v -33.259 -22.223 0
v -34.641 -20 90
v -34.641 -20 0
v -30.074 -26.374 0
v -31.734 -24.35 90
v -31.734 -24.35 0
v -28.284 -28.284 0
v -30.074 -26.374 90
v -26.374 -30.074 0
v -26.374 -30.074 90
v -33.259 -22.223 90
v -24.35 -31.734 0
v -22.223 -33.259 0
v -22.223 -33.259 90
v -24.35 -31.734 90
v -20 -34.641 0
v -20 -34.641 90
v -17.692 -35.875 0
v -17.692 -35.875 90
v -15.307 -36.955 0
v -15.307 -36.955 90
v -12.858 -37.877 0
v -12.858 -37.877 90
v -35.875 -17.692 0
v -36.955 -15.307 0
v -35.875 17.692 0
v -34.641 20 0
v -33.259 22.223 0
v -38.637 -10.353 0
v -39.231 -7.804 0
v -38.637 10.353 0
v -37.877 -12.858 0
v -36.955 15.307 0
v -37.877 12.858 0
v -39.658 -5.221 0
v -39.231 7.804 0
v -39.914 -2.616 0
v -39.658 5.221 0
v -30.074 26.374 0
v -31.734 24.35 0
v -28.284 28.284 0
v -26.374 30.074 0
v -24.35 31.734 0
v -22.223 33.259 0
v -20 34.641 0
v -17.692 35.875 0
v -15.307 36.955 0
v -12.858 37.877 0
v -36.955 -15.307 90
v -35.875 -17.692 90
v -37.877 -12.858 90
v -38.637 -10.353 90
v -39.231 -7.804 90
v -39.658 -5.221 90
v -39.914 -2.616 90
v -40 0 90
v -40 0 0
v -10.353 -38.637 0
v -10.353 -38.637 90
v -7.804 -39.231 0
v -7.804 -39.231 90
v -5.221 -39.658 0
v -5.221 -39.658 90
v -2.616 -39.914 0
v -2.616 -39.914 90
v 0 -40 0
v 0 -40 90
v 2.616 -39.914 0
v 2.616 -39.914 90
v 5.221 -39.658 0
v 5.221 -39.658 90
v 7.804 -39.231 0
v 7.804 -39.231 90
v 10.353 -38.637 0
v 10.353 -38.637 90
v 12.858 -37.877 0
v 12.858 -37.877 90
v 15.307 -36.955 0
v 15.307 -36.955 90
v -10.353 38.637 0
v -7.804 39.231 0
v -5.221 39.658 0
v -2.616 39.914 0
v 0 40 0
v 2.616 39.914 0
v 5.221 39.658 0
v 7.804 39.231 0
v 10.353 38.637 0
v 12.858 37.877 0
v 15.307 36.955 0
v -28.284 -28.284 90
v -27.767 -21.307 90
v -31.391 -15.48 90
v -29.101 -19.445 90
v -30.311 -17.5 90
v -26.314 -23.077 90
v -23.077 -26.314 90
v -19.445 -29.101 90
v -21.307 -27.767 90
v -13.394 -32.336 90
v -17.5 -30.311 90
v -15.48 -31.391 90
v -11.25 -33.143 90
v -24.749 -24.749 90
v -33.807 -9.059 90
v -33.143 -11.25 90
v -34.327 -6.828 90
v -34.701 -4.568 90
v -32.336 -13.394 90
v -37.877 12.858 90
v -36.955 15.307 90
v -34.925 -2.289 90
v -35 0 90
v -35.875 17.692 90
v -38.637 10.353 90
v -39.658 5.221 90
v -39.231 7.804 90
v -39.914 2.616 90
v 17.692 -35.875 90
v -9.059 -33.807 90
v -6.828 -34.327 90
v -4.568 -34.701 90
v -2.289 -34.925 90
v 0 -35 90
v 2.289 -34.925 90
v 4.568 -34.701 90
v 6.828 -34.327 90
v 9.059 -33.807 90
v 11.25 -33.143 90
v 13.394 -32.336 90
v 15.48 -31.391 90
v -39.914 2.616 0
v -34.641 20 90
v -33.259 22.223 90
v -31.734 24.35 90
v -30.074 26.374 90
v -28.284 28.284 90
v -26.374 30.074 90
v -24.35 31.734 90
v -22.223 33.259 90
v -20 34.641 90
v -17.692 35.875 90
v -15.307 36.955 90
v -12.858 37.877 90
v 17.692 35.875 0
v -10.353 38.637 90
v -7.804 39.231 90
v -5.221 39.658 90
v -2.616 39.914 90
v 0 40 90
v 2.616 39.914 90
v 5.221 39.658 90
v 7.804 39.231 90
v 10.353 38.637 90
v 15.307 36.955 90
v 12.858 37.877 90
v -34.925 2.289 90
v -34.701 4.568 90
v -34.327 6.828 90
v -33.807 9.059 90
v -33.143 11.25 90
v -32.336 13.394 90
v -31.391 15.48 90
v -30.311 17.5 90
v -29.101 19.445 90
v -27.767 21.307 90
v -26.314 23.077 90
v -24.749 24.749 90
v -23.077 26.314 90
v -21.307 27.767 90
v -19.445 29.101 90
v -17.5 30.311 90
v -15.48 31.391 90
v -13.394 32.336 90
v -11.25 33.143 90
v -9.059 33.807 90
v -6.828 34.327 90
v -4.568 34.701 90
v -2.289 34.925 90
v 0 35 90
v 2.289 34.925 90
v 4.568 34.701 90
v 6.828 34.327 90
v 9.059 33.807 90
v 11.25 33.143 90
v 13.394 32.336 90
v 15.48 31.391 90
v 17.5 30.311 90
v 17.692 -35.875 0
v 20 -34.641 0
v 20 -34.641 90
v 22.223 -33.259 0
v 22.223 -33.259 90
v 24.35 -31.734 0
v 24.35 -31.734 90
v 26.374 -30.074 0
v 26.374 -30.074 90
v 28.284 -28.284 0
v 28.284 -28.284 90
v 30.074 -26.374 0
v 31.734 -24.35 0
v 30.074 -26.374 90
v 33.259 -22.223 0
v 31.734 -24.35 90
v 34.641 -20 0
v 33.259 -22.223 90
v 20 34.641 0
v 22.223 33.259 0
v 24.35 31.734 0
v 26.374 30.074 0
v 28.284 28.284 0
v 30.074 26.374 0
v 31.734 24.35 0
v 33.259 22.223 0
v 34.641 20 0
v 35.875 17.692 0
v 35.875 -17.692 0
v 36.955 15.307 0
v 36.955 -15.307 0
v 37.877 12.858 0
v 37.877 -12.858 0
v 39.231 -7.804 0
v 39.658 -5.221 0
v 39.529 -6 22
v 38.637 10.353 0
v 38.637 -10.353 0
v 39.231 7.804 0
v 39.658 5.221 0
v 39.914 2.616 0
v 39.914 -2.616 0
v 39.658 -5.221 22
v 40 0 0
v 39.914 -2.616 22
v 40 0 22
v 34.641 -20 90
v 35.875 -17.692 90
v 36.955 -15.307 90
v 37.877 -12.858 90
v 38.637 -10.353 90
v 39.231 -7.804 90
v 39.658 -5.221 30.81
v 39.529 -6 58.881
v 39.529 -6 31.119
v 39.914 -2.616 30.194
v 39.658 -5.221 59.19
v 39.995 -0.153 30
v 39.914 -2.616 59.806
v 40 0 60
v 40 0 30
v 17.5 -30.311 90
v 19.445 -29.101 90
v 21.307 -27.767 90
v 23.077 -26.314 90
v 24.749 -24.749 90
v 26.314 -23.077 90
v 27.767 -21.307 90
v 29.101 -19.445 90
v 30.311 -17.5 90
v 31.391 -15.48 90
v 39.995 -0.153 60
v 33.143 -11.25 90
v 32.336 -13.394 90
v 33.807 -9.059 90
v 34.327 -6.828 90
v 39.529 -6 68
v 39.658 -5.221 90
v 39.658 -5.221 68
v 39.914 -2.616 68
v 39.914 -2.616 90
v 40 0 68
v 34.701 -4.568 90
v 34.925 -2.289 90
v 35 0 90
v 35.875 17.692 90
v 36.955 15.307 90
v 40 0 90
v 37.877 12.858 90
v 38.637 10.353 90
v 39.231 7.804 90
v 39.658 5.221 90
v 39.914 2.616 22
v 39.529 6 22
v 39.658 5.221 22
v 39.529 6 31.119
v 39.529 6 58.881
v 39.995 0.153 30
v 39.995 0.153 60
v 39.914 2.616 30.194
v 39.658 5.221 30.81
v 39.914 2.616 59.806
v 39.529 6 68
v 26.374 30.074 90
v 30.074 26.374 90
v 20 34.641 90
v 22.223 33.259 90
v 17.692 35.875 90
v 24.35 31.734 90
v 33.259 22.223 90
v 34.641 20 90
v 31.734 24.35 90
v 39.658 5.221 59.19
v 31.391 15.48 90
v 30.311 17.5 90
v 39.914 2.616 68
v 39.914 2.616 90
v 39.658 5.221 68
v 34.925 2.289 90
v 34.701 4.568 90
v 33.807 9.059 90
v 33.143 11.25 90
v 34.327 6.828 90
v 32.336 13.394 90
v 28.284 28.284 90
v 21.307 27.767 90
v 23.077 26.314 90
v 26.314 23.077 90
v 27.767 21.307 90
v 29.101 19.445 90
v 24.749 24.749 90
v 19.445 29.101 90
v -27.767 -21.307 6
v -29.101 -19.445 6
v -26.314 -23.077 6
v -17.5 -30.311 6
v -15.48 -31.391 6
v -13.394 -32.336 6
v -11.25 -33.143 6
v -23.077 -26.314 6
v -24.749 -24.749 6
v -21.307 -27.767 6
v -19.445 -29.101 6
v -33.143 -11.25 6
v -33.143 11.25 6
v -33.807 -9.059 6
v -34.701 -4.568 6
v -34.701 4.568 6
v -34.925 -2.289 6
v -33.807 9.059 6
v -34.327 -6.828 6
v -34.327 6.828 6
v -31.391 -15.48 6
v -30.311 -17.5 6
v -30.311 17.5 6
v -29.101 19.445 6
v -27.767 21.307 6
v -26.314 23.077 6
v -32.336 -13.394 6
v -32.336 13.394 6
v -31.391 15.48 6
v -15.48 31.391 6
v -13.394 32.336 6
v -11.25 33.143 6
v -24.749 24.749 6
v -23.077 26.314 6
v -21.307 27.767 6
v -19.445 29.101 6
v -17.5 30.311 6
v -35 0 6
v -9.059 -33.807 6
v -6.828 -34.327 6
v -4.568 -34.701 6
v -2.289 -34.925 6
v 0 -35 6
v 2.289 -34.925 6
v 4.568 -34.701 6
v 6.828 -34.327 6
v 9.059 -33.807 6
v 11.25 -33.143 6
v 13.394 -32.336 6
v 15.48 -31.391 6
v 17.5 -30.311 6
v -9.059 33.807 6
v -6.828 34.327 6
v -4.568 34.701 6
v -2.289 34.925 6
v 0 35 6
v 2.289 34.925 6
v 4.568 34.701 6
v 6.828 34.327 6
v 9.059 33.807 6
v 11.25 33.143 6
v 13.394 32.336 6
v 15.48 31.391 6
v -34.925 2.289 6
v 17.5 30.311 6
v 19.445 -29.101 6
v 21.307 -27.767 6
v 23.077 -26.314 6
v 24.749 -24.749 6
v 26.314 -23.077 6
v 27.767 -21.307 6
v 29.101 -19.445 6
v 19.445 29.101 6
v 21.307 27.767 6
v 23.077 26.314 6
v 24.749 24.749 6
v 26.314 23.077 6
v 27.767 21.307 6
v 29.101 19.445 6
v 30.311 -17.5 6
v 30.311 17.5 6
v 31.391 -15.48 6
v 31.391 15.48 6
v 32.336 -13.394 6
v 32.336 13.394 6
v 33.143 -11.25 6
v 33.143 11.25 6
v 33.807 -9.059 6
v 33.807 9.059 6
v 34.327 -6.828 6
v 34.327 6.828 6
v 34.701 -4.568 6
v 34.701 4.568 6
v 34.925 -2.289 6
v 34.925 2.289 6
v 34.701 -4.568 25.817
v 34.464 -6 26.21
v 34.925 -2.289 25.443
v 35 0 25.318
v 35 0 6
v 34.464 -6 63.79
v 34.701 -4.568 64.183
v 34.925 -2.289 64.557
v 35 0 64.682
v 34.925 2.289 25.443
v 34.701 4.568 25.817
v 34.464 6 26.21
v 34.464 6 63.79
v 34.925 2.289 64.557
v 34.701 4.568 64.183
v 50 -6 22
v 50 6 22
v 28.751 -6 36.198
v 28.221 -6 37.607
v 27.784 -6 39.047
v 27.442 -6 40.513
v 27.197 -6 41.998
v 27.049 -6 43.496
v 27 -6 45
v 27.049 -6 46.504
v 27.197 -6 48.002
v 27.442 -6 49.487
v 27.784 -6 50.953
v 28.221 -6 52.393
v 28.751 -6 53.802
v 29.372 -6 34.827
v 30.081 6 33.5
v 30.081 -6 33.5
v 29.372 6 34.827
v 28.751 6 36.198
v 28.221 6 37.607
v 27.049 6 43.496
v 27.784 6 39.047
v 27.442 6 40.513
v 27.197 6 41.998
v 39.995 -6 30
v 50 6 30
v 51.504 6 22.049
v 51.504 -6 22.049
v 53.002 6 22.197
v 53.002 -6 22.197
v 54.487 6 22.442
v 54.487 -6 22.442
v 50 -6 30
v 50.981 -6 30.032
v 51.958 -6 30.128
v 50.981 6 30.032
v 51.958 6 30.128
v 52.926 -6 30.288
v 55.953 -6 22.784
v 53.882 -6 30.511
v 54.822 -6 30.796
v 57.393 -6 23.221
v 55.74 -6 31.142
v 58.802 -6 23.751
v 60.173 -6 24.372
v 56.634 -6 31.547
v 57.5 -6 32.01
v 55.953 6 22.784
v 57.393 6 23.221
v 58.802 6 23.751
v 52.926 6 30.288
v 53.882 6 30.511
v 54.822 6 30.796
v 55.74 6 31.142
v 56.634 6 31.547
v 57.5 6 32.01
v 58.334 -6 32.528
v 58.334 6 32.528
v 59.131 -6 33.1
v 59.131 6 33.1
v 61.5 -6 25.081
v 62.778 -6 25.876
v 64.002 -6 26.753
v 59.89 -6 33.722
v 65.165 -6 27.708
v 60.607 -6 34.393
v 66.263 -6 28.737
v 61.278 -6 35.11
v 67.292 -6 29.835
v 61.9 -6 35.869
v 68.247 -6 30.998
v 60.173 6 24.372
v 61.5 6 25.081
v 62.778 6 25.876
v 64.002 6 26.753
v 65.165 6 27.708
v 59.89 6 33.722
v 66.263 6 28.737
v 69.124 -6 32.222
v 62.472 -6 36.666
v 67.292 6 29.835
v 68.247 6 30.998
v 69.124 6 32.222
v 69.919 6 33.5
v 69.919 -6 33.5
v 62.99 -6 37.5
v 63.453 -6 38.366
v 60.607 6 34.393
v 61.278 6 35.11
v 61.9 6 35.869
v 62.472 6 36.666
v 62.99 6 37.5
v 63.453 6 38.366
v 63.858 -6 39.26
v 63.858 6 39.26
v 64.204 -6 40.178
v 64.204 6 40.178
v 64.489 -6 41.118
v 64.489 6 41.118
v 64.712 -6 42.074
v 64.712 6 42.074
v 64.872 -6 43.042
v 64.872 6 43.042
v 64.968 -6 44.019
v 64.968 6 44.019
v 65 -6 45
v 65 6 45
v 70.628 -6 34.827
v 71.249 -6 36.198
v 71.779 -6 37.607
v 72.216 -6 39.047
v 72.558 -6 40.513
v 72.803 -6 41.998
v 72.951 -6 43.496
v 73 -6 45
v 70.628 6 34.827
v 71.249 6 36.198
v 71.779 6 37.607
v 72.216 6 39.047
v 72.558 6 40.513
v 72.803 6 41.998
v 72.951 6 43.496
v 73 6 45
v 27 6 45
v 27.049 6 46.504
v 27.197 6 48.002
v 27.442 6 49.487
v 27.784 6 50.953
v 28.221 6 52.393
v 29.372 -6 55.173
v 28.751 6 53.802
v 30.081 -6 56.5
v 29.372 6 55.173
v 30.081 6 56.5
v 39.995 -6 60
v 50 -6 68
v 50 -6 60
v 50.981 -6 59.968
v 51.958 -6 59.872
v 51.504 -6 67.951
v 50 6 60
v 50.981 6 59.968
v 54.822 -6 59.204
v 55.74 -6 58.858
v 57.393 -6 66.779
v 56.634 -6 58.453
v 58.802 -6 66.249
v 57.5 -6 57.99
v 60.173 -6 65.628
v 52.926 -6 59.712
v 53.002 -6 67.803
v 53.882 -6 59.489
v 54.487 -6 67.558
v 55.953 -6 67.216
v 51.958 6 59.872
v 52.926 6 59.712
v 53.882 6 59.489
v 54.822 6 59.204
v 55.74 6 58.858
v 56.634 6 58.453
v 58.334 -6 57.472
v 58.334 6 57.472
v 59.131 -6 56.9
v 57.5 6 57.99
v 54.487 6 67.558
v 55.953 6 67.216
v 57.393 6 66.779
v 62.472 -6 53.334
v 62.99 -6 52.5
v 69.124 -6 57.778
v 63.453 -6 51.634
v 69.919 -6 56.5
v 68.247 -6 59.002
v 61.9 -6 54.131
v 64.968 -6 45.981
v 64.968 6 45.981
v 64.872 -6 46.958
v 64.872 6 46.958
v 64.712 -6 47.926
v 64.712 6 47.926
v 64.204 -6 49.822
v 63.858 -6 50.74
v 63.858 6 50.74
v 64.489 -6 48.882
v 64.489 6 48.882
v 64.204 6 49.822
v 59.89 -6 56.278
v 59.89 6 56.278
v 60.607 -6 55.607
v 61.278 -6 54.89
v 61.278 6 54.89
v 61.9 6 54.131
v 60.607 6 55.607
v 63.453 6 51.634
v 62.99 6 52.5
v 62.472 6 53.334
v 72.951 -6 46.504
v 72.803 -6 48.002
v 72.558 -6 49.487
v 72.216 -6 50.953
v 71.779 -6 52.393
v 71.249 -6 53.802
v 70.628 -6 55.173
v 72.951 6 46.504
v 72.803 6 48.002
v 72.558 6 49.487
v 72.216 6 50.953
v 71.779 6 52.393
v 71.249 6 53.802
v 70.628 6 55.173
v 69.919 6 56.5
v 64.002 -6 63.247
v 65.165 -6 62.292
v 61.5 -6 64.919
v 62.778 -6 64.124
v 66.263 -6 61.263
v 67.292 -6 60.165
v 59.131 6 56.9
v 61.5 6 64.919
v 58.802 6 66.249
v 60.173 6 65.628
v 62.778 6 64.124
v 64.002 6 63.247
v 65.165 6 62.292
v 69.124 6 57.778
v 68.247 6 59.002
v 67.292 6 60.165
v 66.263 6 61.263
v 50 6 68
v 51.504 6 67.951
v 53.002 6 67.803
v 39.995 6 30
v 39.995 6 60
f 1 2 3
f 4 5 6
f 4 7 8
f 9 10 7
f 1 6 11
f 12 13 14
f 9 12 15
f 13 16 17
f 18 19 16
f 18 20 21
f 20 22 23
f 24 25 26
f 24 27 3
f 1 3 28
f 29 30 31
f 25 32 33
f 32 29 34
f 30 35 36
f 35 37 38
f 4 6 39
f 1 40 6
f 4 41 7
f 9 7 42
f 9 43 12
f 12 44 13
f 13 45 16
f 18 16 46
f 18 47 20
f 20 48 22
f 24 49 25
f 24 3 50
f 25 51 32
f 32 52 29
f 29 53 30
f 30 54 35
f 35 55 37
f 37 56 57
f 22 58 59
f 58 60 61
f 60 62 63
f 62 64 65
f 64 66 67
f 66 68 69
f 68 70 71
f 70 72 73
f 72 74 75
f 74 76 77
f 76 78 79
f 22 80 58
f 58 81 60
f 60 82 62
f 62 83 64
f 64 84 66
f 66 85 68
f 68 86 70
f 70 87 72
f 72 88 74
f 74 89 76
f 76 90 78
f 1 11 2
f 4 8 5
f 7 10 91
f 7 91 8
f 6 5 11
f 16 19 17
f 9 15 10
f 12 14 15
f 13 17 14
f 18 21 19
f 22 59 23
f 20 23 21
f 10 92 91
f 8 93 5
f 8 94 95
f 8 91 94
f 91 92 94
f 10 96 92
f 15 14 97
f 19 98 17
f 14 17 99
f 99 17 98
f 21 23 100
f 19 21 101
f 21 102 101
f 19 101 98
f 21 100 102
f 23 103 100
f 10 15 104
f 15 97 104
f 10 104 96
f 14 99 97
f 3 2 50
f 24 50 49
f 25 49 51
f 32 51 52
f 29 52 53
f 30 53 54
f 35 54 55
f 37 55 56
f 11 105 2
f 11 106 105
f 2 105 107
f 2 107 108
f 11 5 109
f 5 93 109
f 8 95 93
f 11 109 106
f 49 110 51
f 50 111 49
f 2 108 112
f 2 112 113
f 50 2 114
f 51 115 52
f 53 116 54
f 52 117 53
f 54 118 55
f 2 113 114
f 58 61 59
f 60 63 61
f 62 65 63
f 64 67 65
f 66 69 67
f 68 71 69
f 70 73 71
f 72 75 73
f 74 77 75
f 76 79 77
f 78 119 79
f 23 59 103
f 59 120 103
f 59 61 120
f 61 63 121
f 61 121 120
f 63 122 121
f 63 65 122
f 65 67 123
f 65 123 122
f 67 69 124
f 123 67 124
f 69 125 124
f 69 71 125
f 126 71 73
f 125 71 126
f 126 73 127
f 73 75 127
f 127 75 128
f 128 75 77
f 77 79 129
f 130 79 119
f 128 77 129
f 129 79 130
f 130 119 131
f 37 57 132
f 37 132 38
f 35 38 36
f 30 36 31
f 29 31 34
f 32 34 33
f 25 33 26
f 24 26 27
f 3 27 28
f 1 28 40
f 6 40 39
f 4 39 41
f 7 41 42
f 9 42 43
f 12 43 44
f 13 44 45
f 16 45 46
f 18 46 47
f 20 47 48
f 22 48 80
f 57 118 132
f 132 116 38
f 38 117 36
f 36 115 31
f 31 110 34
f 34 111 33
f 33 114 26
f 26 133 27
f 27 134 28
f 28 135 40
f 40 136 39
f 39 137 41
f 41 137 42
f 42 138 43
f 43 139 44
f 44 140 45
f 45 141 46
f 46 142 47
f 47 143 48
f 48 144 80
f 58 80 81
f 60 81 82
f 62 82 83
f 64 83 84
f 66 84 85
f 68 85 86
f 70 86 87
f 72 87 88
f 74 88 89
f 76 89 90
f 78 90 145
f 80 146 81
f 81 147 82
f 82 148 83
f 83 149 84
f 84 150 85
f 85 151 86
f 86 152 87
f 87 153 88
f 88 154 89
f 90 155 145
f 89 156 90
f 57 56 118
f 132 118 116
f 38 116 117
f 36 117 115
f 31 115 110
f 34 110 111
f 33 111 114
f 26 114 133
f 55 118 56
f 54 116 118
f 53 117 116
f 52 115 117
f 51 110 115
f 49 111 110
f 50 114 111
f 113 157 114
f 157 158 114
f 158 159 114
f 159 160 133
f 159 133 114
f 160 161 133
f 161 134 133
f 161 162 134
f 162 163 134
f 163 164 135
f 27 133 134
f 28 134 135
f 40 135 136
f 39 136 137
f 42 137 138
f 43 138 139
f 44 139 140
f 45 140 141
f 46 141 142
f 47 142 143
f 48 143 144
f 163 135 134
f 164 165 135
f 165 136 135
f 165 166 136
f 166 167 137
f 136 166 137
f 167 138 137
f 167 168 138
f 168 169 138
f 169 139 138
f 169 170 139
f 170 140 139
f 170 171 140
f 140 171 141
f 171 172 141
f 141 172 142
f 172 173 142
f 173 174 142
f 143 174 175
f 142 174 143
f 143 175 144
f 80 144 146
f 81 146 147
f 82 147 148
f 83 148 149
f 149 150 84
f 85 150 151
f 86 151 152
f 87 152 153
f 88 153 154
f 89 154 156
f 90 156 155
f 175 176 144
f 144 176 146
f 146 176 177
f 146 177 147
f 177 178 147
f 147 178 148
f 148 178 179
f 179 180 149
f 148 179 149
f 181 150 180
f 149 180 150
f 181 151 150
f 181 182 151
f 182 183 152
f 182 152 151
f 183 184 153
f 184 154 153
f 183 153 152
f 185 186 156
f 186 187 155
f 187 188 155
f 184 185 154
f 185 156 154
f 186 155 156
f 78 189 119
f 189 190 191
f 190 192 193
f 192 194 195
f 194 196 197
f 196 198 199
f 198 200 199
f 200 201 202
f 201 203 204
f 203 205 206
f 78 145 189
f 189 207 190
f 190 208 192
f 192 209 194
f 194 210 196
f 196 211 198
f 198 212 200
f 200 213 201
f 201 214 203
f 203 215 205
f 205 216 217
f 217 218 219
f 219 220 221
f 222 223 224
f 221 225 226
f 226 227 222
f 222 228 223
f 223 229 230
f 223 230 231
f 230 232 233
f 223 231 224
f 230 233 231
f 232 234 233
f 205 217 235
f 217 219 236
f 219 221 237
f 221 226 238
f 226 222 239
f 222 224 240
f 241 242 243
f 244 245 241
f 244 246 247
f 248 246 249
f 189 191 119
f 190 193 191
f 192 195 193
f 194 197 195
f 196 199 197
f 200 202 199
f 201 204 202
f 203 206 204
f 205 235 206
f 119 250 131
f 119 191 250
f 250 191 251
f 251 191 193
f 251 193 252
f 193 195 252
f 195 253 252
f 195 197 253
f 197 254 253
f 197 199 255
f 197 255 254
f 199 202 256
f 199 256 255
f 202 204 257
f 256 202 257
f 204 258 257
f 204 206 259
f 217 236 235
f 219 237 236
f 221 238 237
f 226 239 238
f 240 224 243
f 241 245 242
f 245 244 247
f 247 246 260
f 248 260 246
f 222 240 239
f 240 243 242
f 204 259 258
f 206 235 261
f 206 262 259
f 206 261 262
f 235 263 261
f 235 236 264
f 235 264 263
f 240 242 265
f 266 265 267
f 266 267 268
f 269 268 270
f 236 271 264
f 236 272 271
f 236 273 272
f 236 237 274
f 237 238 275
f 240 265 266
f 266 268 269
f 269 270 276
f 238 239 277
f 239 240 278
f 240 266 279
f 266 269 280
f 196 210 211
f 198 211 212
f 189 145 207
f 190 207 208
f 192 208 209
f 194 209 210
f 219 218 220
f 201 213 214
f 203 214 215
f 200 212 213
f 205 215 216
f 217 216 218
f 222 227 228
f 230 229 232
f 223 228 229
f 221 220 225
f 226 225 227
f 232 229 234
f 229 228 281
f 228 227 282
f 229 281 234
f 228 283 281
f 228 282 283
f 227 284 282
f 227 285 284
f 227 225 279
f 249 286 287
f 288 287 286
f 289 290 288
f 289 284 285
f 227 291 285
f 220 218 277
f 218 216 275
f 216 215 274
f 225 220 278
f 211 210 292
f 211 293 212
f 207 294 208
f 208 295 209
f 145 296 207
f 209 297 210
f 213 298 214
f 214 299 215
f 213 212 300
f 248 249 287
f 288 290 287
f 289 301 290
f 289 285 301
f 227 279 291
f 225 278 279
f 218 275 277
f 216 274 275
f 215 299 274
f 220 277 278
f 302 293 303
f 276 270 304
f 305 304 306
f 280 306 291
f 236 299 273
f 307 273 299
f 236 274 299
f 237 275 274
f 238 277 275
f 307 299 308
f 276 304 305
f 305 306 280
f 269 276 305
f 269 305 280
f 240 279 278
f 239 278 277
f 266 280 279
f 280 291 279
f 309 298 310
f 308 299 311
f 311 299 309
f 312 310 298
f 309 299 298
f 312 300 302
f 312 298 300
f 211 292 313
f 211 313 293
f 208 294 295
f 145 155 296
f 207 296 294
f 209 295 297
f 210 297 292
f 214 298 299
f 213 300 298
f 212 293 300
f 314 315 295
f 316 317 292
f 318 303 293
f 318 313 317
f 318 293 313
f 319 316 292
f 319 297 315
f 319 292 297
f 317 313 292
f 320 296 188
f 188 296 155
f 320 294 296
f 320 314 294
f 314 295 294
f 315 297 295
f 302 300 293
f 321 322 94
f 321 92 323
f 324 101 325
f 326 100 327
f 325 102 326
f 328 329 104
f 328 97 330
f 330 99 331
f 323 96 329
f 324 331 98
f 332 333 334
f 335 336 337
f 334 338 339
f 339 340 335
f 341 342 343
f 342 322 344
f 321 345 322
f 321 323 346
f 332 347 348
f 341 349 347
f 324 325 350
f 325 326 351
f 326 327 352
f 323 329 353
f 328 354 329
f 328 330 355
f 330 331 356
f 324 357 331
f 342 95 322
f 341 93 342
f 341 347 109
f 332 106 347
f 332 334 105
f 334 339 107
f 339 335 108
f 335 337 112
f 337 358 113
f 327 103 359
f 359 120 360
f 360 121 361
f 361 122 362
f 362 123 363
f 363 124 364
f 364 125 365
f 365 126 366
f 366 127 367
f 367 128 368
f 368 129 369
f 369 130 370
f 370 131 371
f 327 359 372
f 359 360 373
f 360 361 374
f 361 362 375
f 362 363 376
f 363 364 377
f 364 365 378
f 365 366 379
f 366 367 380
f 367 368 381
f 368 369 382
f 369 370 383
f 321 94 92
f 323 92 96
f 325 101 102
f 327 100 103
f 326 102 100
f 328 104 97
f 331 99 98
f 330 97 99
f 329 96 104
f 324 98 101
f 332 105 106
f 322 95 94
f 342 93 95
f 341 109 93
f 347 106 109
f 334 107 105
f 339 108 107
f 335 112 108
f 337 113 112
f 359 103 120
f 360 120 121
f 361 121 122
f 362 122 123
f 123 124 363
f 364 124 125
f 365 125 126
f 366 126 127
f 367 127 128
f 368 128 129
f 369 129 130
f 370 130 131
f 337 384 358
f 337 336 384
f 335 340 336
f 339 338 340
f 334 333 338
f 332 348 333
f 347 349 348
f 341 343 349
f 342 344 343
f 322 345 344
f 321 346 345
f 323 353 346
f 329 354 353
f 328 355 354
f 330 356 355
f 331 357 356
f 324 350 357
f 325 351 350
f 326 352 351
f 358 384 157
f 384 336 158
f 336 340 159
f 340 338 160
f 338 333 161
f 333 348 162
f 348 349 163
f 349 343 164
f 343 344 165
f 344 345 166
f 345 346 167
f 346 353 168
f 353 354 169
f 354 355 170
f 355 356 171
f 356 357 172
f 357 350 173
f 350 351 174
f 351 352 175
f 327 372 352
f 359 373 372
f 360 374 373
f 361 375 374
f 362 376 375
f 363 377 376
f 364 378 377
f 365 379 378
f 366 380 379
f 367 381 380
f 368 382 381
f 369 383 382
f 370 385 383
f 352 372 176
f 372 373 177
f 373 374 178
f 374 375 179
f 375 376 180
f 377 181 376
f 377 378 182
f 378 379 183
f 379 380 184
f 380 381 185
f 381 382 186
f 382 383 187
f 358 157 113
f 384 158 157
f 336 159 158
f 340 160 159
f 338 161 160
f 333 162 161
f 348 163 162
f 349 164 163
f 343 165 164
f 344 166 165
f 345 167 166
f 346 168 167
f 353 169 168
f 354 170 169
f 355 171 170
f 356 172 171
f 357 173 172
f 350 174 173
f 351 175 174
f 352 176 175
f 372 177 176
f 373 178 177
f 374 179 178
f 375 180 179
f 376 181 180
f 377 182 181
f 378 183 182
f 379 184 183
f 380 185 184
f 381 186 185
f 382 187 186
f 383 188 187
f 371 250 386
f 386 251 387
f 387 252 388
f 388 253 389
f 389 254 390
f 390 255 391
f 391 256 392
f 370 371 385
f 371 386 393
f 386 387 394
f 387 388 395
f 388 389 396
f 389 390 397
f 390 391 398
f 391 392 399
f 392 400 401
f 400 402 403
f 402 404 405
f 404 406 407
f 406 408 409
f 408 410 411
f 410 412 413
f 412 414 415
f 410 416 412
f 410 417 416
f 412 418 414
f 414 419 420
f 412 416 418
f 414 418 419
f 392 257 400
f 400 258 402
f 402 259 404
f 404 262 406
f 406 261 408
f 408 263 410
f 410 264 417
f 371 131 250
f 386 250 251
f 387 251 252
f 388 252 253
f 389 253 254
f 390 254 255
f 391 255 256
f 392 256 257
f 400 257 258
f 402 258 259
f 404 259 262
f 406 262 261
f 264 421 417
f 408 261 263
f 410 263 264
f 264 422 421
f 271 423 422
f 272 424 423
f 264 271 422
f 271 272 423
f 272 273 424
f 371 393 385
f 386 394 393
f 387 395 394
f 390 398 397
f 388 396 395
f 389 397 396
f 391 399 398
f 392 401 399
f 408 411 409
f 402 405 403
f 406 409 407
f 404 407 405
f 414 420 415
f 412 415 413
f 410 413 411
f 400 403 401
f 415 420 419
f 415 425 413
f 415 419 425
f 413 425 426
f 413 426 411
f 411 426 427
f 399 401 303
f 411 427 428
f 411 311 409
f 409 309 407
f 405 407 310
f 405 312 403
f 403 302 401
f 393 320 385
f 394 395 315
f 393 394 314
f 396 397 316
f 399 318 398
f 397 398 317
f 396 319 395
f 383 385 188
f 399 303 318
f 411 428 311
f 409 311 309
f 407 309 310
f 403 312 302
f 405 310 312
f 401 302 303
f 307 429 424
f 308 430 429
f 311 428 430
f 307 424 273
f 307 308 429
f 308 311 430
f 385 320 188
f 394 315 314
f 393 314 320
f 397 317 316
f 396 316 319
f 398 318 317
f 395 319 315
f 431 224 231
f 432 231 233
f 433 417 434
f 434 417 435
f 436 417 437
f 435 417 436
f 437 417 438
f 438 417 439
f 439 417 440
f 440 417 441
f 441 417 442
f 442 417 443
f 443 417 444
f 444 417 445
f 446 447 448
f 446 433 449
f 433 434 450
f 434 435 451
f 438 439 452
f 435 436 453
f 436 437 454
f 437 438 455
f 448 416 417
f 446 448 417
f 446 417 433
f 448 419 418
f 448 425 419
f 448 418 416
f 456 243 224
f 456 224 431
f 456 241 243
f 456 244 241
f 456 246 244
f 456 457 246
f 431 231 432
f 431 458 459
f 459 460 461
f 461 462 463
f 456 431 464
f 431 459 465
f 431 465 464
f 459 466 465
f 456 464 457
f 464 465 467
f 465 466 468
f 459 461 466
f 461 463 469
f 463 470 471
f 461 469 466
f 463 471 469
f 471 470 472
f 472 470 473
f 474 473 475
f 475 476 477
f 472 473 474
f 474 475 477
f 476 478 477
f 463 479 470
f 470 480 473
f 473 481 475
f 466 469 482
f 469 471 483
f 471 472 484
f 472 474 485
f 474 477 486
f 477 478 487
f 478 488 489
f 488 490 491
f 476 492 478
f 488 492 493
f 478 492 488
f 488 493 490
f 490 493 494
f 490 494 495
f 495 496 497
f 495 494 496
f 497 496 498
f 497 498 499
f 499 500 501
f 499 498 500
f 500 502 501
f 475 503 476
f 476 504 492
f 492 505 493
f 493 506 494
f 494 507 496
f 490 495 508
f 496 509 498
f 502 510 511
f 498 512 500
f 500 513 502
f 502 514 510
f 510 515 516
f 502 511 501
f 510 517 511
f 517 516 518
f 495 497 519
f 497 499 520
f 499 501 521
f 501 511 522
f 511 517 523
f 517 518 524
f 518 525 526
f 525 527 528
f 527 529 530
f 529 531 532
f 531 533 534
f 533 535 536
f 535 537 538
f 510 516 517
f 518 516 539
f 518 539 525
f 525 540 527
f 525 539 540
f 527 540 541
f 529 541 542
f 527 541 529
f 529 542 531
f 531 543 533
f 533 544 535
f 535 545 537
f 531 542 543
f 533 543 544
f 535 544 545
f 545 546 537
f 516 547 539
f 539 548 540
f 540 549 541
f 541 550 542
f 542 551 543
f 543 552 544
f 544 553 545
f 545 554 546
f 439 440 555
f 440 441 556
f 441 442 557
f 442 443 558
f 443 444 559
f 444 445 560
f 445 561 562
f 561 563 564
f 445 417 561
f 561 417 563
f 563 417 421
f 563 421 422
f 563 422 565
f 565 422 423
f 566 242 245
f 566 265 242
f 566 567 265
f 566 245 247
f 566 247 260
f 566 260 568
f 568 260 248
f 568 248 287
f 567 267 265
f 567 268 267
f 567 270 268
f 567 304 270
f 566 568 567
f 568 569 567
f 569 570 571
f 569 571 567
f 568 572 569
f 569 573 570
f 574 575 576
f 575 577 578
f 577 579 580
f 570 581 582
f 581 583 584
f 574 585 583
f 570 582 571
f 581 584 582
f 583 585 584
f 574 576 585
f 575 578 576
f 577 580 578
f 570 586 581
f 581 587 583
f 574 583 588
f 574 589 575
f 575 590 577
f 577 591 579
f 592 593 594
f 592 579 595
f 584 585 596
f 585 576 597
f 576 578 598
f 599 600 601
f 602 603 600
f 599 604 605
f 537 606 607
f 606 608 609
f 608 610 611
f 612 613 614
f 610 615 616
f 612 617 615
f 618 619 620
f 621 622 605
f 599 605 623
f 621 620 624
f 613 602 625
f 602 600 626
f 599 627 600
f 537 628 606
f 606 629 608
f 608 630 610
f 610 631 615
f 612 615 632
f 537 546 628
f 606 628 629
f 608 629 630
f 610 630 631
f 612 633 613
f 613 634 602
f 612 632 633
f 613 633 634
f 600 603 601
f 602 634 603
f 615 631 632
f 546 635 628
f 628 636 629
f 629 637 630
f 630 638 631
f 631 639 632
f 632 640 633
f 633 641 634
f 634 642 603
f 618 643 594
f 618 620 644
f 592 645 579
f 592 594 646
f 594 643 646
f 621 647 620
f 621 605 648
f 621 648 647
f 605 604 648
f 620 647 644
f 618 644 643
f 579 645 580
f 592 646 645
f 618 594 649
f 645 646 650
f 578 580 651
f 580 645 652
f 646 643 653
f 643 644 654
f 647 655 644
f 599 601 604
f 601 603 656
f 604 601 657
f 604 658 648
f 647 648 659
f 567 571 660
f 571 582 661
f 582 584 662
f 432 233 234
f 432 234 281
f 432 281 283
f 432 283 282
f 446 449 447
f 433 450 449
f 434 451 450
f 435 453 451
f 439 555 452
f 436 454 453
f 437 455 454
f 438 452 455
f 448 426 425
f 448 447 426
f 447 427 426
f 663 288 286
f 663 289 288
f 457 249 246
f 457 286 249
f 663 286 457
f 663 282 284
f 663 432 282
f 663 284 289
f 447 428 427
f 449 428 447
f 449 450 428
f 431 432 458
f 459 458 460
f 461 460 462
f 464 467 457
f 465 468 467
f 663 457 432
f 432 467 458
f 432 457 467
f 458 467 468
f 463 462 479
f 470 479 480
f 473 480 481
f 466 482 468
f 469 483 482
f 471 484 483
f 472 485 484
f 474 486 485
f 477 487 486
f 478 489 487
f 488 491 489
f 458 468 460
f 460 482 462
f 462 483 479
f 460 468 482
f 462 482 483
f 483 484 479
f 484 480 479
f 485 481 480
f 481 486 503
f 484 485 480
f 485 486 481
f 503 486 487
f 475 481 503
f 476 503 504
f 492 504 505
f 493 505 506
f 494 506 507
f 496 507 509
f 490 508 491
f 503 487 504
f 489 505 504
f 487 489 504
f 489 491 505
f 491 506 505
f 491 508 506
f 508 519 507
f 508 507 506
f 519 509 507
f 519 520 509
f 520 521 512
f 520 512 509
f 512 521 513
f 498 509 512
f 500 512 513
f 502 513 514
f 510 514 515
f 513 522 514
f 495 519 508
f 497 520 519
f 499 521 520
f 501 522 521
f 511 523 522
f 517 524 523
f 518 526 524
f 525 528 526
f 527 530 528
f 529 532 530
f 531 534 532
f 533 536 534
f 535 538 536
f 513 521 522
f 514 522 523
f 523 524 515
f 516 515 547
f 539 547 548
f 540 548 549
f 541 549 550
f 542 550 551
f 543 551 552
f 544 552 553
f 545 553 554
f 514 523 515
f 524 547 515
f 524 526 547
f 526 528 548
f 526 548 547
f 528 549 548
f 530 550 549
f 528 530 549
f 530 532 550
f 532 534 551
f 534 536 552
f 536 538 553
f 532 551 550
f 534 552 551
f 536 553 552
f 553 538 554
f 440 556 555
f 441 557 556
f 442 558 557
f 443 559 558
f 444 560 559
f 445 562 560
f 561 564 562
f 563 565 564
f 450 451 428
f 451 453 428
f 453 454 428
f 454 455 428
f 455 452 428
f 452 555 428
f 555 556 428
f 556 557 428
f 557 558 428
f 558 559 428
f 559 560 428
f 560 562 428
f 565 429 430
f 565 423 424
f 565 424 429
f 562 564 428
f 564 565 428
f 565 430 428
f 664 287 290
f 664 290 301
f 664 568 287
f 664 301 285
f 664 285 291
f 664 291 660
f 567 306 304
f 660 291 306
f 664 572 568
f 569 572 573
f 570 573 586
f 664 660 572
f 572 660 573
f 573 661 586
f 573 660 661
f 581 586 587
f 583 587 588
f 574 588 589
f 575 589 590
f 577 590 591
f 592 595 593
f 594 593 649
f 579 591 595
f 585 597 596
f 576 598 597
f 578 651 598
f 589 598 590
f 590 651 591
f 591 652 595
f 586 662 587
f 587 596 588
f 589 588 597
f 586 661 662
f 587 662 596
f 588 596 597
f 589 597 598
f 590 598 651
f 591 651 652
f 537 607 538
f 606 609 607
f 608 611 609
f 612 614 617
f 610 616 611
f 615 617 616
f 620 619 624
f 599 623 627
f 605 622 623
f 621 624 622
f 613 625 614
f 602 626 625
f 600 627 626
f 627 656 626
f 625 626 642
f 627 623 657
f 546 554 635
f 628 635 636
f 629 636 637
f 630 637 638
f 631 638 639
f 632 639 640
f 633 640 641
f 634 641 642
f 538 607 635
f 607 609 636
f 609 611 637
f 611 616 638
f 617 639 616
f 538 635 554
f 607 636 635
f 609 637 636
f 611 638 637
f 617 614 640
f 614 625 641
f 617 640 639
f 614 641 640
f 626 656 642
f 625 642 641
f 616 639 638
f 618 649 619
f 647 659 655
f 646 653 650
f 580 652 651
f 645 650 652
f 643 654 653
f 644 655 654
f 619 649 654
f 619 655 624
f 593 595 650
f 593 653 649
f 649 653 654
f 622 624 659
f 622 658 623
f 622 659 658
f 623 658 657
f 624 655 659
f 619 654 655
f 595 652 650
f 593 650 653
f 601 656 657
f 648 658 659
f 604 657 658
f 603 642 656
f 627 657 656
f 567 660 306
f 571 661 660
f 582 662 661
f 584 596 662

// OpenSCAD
// マグカップ(取手は +X 方向)
$fn = 96;

outer_d   = 80;    // 外径
inner_d   = 70;    // 内径
height    = 90;    // 全高
bottom_t  = 6;     // 底の厚み

// 取手パラメータ
handle_gap_h = 30; // 取手内側の高さ
handle_gap_w = 25; // 取手内側の幅(本体表面から)
handle_t     = 8;  // 取手の太さ(断面の幅)
handle_depth = 12; // 取手の厚み(Y方向)
handle_z     = height / 2; // 取手中心の高さ

outer_r = outer_d / 2;

// 本体
module body() {
    difference() {
        cylinder(h = height, d = outer_d);
        translate([0, 0, bottom_t])
            cylinder(h = height, d = inner_d);
    }
}

// 取手の D 字プロファイル(XZ 平面、X: 本体外側方向)
// 本体側は直線、外側は半円
module handle_profile_2d(w, h) {
    // w: 直線部から半円の最外点までの幅, h: 直線部の高さ
    // 半円は直線部の端に接続
    hull() {
        square([0.01, h], center = true);
        translate([w - h / 2, 0]) circle(d = h);
    }
}

module handle() {
    inner_h = handle_gap_h;
    inner_w = handle_gap_w;
    outer_h = inner_h + 2 * handle_t;
    outer_w = inner_w + handle_t;

    // 本体内部に少し食い込ませて確実に union する
    overlap = 3;
    translate([outer_r - overlap, 0, handle_z])
        rotate([90, 0, 0])
            linear_extrude(height = handle_depth, center = true)
                difference() {
                    handle_profile_2d(outer_w + overlap, outer_h);
                    translate([overlap, 0]) handle_profile_2d(inner_w, inner_h);
                }
}

union() {
    body();
    handle();
}
